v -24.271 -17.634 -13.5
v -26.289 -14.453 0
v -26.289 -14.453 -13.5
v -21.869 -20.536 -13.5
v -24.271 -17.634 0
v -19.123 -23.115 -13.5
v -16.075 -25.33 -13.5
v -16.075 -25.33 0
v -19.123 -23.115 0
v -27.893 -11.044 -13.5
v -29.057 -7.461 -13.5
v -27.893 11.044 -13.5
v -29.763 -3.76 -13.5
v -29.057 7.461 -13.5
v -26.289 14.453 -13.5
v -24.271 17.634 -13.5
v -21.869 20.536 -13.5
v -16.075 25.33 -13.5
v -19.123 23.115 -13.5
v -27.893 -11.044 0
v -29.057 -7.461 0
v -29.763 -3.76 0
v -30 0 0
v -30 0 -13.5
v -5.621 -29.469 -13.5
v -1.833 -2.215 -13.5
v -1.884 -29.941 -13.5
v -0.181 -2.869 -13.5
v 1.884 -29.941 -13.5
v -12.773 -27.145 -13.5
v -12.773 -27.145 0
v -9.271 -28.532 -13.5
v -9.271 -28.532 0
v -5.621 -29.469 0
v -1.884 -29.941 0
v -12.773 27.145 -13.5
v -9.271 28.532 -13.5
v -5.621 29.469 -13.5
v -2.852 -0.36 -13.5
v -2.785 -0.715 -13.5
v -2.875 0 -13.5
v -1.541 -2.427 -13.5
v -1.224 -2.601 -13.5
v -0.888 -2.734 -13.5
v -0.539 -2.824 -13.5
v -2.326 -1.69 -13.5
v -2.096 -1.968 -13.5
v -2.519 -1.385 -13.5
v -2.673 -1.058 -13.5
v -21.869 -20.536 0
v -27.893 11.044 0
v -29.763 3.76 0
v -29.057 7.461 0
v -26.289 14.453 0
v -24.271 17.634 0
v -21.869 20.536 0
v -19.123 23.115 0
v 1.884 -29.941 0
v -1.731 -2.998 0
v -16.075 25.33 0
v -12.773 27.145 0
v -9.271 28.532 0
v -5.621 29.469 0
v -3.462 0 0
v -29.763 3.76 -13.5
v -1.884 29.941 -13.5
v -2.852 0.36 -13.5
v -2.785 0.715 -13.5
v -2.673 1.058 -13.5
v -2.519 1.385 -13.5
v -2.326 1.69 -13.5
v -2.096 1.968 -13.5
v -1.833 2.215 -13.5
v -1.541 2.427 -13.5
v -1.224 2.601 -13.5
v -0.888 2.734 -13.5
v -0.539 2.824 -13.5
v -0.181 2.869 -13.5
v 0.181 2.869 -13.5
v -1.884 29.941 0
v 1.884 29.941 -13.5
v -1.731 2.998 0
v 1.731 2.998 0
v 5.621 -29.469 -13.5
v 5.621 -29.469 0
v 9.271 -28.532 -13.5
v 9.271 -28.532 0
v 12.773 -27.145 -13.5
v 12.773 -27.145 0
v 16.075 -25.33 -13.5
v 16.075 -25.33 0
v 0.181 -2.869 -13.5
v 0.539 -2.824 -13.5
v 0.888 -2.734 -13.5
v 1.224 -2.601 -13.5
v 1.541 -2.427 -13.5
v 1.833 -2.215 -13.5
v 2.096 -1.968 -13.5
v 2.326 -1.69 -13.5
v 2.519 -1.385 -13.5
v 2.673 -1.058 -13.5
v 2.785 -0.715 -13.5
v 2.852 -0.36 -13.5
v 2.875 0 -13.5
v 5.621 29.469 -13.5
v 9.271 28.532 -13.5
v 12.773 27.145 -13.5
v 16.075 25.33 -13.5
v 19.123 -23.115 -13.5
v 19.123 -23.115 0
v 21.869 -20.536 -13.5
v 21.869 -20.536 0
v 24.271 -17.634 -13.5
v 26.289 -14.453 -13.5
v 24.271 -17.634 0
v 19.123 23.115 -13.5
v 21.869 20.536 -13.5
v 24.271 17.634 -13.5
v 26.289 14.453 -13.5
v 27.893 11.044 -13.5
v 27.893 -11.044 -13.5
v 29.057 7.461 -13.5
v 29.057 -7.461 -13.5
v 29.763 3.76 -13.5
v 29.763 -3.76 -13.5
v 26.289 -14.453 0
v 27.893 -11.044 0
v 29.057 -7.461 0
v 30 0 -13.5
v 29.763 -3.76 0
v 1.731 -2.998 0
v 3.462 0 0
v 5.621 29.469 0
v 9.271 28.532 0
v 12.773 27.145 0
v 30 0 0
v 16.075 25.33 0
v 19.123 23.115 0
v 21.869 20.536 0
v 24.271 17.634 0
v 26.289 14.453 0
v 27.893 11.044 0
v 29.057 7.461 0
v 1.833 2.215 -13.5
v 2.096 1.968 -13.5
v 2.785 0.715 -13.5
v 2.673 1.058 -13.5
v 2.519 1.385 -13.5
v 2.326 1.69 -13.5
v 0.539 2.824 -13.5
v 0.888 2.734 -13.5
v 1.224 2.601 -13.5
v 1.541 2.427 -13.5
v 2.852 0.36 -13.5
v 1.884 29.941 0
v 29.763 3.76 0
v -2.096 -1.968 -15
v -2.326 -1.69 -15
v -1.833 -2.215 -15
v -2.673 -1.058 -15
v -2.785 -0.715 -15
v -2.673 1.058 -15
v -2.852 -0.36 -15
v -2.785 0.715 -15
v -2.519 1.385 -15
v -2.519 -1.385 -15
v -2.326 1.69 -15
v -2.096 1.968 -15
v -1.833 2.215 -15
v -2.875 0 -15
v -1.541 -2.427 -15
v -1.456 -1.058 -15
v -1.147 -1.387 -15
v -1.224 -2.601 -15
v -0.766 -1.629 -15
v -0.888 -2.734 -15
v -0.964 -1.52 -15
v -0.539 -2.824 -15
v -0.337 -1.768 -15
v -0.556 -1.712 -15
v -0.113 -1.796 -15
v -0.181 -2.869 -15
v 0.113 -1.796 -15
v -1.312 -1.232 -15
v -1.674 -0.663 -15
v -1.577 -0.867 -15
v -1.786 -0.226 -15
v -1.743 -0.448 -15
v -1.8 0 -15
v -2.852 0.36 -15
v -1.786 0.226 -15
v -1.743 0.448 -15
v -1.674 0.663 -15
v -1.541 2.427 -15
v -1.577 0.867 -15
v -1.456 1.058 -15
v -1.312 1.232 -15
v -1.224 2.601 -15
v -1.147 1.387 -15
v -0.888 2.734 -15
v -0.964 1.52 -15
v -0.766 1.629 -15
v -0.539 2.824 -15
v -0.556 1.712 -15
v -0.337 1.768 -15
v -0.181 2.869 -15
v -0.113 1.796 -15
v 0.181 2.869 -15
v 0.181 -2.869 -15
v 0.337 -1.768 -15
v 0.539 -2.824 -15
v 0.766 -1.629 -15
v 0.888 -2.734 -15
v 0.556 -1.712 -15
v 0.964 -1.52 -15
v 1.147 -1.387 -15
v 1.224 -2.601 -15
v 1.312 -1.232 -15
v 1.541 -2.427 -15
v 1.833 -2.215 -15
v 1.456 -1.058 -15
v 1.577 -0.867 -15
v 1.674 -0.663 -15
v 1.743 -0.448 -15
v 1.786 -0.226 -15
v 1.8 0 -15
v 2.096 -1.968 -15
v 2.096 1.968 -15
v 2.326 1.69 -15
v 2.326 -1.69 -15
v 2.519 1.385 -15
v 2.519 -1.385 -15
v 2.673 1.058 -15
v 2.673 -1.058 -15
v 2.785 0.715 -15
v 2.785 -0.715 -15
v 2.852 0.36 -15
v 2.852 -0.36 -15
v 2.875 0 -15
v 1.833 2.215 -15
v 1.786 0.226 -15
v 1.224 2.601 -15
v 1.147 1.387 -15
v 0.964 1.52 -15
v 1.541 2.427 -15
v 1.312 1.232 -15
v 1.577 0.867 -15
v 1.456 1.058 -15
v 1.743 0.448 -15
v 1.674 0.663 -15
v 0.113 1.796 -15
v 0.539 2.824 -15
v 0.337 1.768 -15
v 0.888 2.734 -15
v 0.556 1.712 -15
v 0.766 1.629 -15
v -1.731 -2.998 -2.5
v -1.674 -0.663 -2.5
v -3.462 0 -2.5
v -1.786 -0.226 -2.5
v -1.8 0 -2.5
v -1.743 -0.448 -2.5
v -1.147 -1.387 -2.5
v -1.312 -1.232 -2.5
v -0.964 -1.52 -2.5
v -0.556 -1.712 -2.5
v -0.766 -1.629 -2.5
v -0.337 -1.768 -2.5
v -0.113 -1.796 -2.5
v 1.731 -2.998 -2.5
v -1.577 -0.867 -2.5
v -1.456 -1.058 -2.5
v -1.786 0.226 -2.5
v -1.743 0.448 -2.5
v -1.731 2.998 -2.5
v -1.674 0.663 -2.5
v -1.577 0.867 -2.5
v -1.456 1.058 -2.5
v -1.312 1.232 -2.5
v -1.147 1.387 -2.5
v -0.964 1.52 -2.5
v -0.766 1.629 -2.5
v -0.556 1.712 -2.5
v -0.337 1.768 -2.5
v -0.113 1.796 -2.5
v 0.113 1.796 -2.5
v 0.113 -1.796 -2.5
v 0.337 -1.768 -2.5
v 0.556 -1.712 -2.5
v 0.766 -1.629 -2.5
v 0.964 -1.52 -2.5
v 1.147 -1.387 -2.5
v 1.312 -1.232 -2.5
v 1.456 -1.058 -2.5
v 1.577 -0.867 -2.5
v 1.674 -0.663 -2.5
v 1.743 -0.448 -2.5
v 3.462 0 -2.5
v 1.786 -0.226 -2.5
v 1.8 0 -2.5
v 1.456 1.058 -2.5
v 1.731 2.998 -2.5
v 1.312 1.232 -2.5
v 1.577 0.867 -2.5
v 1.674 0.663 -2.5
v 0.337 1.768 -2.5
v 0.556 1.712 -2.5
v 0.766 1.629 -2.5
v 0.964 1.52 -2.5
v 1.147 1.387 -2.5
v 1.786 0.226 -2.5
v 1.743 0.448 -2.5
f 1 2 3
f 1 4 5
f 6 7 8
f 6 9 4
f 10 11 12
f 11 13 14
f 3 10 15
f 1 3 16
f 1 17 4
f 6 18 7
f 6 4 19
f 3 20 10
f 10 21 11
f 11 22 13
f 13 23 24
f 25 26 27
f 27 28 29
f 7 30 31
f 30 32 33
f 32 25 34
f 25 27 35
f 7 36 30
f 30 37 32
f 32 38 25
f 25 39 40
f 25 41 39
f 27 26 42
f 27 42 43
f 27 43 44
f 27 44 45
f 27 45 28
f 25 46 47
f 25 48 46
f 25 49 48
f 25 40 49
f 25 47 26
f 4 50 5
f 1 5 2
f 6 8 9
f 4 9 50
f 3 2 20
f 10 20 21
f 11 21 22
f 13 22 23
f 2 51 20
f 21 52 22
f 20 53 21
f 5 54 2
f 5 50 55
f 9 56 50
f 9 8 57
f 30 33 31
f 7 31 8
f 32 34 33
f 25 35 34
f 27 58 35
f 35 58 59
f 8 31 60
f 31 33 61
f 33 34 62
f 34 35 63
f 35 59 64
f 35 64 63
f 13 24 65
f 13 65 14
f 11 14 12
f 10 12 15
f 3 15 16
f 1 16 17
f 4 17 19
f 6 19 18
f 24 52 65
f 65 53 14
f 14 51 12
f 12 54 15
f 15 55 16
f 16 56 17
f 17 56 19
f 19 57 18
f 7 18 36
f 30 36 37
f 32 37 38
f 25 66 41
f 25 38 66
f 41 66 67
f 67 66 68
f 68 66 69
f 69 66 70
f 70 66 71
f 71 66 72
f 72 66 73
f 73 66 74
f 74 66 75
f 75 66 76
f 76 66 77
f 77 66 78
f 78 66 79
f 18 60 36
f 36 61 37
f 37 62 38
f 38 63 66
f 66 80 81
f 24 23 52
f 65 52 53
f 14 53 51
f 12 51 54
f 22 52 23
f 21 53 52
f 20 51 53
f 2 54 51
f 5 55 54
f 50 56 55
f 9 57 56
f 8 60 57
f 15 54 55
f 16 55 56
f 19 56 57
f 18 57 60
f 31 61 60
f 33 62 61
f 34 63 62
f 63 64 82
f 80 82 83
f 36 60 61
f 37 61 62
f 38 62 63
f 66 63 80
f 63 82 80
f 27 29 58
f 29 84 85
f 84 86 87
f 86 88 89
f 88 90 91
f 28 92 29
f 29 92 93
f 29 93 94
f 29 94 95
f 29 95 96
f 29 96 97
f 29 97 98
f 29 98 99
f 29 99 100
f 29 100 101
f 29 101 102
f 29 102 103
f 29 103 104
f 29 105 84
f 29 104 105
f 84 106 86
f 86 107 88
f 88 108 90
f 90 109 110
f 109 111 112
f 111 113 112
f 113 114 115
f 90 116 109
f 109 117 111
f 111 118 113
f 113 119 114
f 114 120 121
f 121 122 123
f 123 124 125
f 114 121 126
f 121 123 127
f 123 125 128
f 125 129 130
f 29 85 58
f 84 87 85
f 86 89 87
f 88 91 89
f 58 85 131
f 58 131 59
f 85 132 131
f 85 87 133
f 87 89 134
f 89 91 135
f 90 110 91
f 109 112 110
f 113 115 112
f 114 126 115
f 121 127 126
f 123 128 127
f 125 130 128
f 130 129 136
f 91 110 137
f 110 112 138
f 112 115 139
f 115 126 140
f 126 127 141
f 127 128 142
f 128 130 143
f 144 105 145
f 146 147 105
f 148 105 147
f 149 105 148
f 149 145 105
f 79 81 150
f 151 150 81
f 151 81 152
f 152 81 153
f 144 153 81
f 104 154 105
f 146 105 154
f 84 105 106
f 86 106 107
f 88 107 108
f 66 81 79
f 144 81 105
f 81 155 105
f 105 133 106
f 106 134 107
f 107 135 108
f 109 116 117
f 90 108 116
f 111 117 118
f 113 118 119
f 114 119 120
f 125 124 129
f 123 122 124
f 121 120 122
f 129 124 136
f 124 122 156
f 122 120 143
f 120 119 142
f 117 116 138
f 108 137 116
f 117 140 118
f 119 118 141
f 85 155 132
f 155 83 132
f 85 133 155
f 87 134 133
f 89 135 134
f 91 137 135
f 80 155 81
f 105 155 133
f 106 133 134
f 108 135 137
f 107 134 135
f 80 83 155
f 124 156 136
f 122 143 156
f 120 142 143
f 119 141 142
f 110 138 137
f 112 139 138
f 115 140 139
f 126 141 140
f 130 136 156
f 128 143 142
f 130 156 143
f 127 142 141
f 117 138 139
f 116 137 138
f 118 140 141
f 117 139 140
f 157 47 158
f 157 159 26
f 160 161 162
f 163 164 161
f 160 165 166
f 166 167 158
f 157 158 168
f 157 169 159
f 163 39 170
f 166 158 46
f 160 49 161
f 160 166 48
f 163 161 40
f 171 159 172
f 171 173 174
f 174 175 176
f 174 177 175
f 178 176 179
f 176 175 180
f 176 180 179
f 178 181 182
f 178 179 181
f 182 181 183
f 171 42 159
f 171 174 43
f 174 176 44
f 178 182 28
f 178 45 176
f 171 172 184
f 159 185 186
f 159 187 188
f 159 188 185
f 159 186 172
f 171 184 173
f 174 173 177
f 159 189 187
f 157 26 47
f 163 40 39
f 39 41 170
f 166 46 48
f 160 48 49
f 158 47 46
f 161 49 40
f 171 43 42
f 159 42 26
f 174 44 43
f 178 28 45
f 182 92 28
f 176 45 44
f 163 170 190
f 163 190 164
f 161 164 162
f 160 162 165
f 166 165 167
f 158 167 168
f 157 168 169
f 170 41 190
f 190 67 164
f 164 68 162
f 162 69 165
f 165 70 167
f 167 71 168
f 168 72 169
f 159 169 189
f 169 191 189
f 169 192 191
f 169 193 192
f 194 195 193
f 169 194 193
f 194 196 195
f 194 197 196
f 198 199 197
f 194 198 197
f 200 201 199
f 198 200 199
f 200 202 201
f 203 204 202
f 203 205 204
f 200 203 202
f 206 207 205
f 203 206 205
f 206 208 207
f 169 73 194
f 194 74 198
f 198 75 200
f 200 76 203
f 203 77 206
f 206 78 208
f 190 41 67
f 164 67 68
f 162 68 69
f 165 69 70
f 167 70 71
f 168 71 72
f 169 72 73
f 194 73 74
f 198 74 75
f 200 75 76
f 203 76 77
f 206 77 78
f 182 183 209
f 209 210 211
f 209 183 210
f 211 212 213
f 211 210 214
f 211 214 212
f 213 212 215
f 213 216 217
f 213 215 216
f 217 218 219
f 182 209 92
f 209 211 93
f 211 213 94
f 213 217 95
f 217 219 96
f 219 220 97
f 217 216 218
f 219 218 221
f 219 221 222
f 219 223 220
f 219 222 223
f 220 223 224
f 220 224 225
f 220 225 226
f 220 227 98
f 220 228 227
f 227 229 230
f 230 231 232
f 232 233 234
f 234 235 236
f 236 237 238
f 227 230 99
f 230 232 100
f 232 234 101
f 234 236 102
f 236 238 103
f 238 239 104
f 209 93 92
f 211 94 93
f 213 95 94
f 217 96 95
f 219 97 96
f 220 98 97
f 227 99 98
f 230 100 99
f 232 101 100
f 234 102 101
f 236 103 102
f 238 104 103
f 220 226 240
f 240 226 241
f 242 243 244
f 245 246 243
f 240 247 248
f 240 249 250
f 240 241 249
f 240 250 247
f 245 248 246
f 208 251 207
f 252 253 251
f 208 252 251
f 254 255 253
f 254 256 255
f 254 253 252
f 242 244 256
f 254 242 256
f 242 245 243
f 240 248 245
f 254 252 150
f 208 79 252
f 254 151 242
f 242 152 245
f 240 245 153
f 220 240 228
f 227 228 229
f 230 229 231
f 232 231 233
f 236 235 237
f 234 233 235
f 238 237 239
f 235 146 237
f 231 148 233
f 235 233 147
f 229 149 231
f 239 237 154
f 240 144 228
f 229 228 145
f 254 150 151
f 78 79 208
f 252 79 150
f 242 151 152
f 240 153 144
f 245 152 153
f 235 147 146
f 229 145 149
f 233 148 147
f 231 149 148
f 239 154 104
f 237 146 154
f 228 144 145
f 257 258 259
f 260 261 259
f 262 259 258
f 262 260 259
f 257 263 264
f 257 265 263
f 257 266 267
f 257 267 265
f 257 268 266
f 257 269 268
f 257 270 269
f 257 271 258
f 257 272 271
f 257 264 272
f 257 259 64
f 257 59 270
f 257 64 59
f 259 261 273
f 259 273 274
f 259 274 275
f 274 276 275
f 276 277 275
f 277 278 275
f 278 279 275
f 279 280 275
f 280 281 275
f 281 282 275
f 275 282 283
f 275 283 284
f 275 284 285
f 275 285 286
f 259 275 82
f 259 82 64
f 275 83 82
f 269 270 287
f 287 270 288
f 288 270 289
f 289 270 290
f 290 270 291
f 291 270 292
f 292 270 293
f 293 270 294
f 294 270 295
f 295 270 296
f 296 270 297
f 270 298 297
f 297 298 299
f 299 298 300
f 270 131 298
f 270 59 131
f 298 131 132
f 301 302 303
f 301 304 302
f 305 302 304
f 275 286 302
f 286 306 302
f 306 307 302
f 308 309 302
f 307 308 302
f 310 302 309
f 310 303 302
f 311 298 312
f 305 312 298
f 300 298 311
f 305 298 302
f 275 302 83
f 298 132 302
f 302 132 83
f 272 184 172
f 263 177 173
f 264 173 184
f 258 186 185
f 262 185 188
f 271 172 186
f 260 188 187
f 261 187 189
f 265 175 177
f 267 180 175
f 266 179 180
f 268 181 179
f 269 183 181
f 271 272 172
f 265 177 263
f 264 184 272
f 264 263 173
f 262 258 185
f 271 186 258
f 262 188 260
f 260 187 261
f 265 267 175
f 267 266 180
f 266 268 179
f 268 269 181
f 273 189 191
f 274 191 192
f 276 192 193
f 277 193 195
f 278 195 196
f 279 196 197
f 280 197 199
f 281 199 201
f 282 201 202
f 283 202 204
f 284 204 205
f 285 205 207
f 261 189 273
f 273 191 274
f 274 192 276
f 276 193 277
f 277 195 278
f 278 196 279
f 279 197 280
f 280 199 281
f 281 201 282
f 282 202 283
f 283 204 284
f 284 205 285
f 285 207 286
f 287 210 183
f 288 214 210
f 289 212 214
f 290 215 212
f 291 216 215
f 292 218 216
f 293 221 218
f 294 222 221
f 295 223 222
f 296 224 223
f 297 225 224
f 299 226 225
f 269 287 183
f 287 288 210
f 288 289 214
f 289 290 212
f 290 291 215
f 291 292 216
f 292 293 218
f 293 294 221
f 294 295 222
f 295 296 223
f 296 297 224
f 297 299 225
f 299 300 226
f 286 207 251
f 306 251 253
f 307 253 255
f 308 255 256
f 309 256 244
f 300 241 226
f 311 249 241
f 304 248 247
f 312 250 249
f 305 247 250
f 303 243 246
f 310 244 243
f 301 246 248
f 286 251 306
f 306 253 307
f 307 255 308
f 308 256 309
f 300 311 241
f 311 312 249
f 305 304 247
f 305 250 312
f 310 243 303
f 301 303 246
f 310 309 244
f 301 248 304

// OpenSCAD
$fn = 50;

difference() {
	union() {
		translate(v = [0, 0, -13.5]) {
			cylinder(h = 13.5, r = 30.0);
		}
		#translate(v = [0, 0, -15.0]) {
			cylinder(h = 15, r = 2.875);
		}
	}
	union() {
		translate(v = [0, 0, 0]) {
			rotate(a = [0, 0, 0]) {
				difference() {
					union() {
						translate(v = [0, 0, -2.5]) {
							linear_extrude(height = 2.5) {
								polygon(points = [[3.4619999999999997, 0.0], [1.7310000000000003, 2.9981799479017264], [-1.7309999999999992, 2.9981799479017264], [-3.4619999999999997, 4.2397272186481365e-16], [-1.7310000000000014, -2.998179947901726], [1.7309999999999977, -2.9981799479017277]]);
							}
						}
					}
					union();
				}
			}
		}
		#translate(v = [0, 0, -100.0]) {
			cylinder(h = 200, r = 1.8);
		}
	}
}
